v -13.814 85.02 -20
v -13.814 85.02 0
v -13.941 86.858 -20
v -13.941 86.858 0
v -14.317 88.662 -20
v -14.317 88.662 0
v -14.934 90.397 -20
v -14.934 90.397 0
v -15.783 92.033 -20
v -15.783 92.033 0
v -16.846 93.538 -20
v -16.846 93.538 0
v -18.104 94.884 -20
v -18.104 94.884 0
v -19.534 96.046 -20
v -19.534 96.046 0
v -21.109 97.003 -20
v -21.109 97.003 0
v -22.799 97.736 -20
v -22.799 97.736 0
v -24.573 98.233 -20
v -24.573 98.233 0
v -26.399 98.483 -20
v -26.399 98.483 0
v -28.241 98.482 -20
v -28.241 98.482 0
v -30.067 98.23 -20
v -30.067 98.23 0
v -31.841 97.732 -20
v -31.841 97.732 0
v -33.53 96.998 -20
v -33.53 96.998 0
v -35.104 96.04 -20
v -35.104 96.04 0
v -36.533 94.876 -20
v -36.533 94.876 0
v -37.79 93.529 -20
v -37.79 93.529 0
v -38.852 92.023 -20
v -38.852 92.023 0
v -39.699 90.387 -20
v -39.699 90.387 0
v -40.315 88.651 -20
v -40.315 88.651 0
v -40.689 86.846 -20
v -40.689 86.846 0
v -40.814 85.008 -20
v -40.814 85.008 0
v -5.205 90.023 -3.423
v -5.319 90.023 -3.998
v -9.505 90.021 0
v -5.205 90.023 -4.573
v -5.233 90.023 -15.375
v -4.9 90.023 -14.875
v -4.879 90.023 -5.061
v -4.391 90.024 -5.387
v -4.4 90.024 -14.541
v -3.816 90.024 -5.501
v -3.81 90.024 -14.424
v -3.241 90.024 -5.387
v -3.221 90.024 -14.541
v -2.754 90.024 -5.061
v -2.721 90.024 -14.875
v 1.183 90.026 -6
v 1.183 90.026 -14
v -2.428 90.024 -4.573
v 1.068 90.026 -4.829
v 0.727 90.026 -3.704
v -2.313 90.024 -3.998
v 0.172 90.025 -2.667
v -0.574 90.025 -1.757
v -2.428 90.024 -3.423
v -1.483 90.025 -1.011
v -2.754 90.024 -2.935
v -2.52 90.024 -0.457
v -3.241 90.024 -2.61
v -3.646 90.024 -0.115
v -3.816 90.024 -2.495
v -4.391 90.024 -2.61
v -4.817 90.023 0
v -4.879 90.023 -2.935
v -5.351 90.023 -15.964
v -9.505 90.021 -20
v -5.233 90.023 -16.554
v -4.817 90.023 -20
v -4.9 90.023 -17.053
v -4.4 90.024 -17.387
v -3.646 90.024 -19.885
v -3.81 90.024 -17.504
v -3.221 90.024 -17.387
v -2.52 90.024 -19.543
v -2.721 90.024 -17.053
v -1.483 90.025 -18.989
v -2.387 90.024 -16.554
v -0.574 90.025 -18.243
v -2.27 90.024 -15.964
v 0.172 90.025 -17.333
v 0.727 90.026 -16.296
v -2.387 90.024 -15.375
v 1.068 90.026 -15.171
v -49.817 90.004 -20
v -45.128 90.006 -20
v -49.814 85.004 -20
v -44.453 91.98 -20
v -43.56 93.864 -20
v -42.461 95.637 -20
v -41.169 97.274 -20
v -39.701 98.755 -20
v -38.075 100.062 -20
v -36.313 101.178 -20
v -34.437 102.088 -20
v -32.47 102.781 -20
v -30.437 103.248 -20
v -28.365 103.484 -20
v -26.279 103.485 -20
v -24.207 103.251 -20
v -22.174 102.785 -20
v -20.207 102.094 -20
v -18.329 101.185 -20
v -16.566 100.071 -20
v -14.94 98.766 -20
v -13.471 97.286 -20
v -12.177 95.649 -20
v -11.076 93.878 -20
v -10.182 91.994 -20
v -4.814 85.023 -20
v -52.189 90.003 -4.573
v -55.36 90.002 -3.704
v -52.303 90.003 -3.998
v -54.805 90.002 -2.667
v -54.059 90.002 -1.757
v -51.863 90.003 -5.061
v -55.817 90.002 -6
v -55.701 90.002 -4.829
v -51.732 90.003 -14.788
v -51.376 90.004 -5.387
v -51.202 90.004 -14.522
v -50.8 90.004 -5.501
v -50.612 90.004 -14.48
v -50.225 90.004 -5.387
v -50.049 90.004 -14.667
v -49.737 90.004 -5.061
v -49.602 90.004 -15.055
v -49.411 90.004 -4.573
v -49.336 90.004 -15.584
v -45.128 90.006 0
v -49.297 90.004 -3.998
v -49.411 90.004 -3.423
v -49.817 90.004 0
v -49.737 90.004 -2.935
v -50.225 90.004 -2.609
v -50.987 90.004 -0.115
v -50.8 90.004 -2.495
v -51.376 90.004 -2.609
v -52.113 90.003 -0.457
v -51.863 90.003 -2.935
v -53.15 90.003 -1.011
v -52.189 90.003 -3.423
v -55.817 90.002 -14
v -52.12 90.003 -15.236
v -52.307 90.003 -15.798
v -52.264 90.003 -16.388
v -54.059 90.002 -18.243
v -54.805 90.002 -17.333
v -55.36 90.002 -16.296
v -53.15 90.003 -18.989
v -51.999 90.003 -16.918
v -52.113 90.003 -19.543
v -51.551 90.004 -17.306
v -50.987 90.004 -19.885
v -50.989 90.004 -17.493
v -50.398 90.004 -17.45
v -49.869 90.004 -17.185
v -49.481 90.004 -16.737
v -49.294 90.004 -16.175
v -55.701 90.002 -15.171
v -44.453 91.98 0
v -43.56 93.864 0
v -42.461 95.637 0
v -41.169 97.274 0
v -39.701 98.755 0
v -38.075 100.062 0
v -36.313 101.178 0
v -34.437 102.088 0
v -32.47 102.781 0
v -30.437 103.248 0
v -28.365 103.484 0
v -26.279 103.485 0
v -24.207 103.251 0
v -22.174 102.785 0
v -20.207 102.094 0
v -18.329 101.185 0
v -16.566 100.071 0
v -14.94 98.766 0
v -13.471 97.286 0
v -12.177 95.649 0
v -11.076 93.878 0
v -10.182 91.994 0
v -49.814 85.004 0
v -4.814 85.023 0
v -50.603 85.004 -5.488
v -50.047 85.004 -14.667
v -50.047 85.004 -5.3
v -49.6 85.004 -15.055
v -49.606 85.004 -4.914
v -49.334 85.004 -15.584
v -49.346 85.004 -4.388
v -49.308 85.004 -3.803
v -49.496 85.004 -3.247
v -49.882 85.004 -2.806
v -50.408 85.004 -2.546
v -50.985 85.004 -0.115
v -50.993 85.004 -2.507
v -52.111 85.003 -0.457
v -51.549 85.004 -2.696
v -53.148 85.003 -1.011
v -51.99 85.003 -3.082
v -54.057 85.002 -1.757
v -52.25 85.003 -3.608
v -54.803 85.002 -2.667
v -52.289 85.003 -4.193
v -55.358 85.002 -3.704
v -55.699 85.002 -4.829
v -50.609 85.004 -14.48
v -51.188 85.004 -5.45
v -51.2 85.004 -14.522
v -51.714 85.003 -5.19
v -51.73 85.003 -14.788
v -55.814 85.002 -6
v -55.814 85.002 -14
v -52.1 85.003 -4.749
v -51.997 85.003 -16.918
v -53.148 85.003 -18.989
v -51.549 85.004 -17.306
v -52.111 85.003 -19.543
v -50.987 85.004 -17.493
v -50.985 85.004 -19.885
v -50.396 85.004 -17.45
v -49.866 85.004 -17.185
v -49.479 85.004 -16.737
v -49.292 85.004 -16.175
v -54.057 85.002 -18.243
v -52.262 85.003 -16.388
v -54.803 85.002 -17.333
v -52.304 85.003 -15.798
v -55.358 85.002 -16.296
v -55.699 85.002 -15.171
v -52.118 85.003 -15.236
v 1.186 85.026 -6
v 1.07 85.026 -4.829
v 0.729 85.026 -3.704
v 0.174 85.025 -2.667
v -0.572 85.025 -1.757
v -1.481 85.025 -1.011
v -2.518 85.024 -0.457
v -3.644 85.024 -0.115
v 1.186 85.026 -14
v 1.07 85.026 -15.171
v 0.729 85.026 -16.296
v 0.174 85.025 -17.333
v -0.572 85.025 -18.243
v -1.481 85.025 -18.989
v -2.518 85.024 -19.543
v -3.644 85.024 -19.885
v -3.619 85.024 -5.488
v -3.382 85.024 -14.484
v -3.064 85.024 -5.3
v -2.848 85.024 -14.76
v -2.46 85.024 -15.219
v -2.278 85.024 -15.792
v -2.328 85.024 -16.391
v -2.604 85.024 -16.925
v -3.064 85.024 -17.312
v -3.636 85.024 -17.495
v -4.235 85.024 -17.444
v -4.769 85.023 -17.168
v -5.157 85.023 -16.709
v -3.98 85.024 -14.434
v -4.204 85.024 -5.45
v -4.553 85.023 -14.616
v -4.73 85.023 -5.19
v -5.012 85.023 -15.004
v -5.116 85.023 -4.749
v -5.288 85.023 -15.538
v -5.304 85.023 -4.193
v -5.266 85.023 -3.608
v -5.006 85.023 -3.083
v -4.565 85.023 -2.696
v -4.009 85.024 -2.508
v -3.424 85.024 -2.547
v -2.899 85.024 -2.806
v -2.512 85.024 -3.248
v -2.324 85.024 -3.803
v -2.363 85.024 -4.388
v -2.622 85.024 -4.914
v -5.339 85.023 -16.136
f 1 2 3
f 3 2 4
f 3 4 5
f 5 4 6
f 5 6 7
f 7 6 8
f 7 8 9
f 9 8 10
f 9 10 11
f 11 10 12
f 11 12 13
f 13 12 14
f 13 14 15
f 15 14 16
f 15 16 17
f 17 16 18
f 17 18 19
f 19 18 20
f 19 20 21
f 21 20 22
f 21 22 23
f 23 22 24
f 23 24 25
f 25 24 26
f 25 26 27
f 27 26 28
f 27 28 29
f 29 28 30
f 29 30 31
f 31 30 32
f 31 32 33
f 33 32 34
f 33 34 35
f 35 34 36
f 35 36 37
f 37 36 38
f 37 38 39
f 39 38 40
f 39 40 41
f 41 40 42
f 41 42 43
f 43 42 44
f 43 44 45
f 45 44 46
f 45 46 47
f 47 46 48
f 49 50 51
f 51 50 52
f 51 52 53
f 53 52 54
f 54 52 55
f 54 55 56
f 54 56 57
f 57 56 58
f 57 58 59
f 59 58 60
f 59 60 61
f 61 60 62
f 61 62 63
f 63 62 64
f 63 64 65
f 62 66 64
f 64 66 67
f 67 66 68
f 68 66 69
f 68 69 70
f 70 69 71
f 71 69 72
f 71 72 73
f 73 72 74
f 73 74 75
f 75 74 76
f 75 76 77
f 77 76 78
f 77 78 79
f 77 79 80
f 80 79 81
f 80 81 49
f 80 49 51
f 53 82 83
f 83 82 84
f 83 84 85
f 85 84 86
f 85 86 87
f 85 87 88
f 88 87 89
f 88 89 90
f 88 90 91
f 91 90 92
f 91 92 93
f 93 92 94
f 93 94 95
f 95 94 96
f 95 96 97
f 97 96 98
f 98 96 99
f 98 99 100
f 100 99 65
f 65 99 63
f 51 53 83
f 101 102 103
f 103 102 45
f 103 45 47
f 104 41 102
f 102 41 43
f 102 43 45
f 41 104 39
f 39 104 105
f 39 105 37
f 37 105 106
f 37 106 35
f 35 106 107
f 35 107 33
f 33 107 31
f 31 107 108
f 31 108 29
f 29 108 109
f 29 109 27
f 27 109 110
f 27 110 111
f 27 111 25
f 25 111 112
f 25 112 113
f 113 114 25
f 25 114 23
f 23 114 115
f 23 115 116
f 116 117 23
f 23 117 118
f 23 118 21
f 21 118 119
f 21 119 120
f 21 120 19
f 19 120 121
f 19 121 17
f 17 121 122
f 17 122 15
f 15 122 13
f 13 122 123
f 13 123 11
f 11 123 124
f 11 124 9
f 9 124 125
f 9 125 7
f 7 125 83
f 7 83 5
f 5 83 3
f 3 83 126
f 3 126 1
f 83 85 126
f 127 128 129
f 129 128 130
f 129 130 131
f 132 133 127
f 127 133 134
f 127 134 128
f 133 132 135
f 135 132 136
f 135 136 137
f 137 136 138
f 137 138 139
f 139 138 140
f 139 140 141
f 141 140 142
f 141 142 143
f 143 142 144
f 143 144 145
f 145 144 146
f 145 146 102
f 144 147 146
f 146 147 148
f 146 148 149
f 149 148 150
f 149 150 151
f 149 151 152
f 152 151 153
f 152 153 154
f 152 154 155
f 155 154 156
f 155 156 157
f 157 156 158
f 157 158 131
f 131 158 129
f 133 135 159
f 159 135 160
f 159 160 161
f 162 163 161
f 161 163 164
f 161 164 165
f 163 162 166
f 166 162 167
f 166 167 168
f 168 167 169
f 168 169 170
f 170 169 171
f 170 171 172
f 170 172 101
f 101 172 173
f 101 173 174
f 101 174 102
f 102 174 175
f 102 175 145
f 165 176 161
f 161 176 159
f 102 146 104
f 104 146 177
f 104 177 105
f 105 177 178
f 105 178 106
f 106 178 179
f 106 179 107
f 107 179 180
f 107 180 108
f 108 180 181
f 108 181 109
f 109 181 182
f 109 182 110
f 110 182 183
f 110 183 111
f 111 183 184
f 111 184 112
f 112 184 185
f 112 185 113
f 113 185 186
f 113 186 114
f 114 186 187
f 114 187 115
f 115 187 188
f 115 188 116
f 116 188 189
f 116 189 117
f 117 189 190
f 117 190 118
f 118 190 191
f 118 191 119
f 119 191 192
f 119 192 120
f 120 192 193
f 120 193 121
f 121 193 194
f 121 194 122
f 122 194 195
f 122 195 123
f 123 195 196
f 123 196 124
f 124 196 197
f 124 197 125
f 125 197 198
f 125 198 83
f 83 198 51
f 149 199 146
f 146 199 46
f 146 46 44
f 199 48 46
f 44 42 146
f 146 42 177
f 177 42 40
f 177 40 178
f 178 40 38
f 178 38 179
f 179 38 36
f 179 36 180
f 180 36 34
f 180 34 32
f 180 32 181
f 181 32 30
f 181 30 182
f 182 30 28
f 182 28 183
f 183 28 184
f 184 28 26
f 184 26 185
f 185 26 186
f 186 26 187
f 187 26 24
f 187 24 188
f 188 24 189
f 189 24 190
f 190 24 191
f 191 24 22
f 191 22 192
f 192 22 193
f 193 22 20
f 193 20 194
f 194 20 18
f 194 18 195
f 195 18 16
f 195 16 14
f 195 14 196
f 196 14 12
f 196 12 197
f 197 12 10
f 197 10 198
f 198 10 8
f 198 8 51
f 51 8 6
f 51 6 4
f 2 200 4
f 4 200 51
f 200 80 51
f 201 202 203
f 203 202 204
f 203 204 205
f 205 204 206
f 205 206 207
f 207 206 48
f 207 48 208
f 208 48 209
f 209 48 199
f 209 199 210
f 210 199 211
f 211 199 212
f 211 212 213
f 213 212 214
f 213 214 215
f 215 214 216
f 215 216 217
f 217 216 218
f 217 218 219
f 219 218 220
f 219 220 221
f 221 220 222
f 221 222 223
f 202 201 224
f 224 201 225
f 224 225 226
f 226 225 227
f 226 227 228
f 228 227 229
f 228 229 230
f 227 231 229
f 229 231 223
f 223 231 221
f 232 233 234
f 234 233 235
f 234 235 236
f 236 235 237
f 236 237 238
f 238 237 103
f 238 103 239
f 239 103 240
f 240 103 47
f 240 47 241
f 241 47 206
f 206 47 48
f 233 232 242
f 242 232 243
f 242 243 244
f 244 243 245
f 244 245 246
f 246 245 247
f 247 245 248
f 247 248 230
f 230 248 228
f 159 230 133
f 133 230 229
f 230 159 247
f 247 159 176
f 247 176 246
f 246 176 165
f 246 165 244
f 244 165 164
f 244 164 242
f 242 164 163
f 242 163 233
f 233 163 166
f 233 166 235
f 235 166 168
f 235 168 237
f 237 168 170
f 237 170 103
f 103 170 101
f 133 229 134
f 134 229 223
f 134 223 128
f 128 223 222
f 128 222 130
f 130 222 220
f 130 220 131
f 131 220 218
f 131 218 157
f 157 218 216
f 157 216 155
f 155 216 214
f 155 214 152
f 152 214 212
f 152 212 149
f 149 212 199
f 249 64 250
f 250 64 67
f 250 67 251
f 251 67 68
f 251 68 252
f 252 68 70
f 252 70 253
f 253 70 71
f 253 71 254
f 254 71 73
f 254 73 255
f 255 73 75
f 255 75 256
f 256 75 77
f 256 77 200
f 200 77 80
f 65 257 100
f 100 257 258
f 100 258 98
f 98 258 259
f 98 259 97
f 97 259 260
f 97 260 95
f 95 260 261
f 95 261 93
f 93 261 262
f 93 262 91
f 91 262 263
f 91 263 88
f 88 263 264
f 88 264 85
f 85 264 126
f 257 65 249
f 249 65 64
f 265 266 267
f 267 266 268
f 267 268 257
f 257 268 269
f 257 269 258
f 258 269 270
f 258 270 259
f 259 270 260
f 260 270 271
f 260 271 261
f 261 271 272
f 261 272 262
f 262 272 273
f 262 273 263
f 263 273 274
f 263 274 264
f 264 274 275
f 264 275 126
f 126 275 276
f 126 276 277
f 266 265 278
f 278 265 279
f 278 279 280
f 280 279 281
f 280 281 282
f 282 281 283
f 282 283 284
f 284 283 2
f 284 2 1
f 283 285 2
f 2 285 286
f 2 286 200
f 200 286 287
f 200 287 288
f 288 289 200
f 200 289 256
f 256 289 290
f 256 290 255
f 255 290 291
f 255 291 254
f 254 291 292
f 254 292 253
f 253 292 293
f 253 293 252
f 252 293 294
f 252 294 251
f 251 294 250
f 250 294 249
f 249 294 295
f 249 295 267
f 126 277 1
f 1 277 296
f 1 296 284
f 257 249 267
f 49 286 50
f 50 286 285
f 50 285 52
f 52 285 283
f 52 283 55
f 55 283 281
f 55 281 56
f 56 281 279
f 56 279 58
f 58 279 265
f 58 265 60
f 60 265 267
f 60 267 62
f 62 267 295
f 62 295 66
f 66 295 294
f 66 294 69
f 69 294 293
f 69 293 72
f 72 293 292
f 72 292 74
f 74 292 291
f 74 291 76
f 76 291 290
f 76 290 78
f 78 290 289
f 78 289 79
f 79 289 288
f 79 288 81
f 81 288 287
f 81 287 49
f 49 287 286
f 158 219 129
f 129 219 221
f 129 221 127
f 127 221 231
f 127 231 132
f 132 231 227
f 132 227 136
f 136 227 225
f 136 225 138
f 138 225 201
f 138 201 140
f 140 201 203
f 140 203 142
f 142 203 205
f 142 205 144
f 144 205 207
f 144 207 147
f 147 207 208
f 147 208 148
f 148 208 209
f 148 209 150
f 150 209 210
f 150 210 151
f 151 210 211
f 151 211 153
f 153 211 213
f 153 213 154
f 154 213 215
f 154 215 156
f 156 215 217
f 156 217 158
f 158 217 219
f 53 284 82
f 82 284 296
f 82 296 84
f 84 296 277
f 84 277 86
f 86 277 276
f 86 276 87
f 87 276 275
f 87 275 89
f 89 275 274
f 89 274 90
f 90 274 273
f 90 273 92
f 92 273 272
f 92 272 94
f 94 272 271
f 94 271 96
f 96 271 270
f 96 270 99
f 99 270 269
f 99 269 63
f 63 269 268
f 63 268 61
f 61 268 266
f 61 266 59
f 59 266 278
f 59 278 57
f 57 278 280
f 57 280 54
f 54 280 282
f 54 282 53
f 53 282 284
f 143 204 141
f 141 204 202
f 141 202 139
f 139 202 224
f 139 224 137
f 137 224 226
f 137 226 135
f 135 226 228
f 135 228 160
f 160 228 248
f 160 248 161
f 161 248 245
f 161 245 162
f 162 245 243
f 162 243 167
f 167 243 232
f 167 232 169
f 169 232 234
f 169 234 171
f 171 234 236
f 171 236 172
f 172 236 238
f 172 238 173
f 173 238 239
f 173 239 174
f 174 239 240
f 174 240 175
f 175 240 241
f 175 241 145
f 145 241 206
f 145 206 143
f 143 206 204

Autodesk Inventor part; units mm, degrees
ref_plane "YZ Plane" through (0, 0, 0) normal (1, 0, 0) x (0, 1, 0)
ref_plane "XZ Plane" through (0, 0, 0) normal (0, 1, 0) x (-1, 0, 0)
ref_plane "XY Plane" through (0, 0, 0) normal (0, 0, 1) x (1, 0, 0)
ref_plane "Plano de trabalho1" through (0, 0, 0) normal (0, 0, 1) x (1, 0, 0)
sketch "Esboço1" plane through (0, 0, 0) normal (0, 0, 1) x (1, 0, 0)
  arc A0 (-40.8144, 85.0081) -> (-13.8144, 85.0195) centre (-27.3144, 85.0138) ccw
  circle A1 centre (-27.3144, 85.0138) radius 13.5
  line L0 (-40.8144, 85.0081) -> (-45.8144, 85.006)
  line L1 (-45.8144, 85.006) -> (-55.8144, 85.0017)
  line L2 (-55.8144, 85.0017) -> (-13.8144, 85.0195)
  line L3 (-13.8144, 85.0195) -> (-8.8144, 85.0216)
  line L4 (-8.8144, 85.0216) -> (1.1856, 85.0259)
  line L5 (1.1856, 85.0259) -> (1.1834, 90.0259)
  line L6 (1.1834, 90.0259) -> (-14.7766, 90.0191)
  line L7 (-55.8144, 85.0017) -> (-55.8166, 90.0017)
  line L8 (-55.8166, 90.0017) -> (-39.8565, 90.0085)
  line L9 (-27.3144, 98.5138) -> (-27.3166, 103.5138)
  arc A2 (-8.8144, 85.0216) -> (-45.8144, 85.006) centre (-27.3144, 85.0138) ccw
  point P0 (0, 0)
  point P1 (-40.8144, 85.0081)
  point P2 (-13.8144, 85.0195)
  point P3 (-9.5051, 90.0213)
  point P4 (-45.1281, 90.0062)
  dimension "d0" = 27
  dimension "d1" = 13.5
  dimension "d2" = 5
  dimension "d3" = 10
  dimension "d4" = 5
  dimension "d5" = 10
  dimension "d6" = 5
  dimension "d7" = 5
  dimension "d8" = 5
extrude "Extrusão1" add sketch "Esboço1" against normal blind 20 contours L0 A2 L8 A1 | L8 A2 L9 A1 | L1 L7 L8 A2 | A1 L6 A2 L3 | L9 A2 L6 A1 | A2 L6 L5 L4
fillet "Arredondamento1" radius 6 4 edges at (1.1845, 87.5259, 0) (1.1845, 87.5259, -20) (-55.8155, 87.5017, 0) (-55.8155, 87.5017, -20)
sketch "Esboço2" plane through (-13.8144, 85.0195, -20) normal (0.0004, -1, 0) x (1, 0.0004, 0)
  arc A0 (9.2495, 14.6999) -> (10.7509, 14.6999) centre (10.0003, 16.0018) ccw
  circle A1 centre (10.0003, 16.0018) radius 1.5029
  arc A2 (9.2495, 2.6941) -> (10.7509, 2.6875) centre (10.0061, 4.0358) ccw
  circle A3 centre (10.0061, 4.0358) radius 1.5402
  arc A4 (-37.7345, 14.6999) -> (-36.2329, 14.6999) centre (-36.9837, 16.0022) ccw
  circle A5 centre (-36.9837, 16.0022) radius 1.5032
  line L0 (-36.2329, 2.6941) -> (-37.7345, 2.6941)
  line L1 (-37.7345, 2.6941) -> (-36.2546, 4.1926)
  arc A6 (-37.7345, 2.6941) -> (-36.2329, 2.6941) centre (-36.9837, 4.0136) ccw
  circle A7 centre (-36.9837, 4.0136) radius 1.5181
  point P0 (13.7784, 20)
  point P1 (10.7509, 2.6875)
  point P2 (9.2495, 2.6941)
  point P3 (10.7509, 14.6999)
  point P4 (9.2495, 14.6999)
  point P5 (-36.2329, 14.6999)
  point P6 (-37.7345, 14.6999)
  point P7 (-37.7345, 2.6941)
  point P8 (-36.2329, 2.6941)
extrude "Extrusão2" cut sketch "Esboço2" against normal blind 20
properties part number "Capa suporte"
